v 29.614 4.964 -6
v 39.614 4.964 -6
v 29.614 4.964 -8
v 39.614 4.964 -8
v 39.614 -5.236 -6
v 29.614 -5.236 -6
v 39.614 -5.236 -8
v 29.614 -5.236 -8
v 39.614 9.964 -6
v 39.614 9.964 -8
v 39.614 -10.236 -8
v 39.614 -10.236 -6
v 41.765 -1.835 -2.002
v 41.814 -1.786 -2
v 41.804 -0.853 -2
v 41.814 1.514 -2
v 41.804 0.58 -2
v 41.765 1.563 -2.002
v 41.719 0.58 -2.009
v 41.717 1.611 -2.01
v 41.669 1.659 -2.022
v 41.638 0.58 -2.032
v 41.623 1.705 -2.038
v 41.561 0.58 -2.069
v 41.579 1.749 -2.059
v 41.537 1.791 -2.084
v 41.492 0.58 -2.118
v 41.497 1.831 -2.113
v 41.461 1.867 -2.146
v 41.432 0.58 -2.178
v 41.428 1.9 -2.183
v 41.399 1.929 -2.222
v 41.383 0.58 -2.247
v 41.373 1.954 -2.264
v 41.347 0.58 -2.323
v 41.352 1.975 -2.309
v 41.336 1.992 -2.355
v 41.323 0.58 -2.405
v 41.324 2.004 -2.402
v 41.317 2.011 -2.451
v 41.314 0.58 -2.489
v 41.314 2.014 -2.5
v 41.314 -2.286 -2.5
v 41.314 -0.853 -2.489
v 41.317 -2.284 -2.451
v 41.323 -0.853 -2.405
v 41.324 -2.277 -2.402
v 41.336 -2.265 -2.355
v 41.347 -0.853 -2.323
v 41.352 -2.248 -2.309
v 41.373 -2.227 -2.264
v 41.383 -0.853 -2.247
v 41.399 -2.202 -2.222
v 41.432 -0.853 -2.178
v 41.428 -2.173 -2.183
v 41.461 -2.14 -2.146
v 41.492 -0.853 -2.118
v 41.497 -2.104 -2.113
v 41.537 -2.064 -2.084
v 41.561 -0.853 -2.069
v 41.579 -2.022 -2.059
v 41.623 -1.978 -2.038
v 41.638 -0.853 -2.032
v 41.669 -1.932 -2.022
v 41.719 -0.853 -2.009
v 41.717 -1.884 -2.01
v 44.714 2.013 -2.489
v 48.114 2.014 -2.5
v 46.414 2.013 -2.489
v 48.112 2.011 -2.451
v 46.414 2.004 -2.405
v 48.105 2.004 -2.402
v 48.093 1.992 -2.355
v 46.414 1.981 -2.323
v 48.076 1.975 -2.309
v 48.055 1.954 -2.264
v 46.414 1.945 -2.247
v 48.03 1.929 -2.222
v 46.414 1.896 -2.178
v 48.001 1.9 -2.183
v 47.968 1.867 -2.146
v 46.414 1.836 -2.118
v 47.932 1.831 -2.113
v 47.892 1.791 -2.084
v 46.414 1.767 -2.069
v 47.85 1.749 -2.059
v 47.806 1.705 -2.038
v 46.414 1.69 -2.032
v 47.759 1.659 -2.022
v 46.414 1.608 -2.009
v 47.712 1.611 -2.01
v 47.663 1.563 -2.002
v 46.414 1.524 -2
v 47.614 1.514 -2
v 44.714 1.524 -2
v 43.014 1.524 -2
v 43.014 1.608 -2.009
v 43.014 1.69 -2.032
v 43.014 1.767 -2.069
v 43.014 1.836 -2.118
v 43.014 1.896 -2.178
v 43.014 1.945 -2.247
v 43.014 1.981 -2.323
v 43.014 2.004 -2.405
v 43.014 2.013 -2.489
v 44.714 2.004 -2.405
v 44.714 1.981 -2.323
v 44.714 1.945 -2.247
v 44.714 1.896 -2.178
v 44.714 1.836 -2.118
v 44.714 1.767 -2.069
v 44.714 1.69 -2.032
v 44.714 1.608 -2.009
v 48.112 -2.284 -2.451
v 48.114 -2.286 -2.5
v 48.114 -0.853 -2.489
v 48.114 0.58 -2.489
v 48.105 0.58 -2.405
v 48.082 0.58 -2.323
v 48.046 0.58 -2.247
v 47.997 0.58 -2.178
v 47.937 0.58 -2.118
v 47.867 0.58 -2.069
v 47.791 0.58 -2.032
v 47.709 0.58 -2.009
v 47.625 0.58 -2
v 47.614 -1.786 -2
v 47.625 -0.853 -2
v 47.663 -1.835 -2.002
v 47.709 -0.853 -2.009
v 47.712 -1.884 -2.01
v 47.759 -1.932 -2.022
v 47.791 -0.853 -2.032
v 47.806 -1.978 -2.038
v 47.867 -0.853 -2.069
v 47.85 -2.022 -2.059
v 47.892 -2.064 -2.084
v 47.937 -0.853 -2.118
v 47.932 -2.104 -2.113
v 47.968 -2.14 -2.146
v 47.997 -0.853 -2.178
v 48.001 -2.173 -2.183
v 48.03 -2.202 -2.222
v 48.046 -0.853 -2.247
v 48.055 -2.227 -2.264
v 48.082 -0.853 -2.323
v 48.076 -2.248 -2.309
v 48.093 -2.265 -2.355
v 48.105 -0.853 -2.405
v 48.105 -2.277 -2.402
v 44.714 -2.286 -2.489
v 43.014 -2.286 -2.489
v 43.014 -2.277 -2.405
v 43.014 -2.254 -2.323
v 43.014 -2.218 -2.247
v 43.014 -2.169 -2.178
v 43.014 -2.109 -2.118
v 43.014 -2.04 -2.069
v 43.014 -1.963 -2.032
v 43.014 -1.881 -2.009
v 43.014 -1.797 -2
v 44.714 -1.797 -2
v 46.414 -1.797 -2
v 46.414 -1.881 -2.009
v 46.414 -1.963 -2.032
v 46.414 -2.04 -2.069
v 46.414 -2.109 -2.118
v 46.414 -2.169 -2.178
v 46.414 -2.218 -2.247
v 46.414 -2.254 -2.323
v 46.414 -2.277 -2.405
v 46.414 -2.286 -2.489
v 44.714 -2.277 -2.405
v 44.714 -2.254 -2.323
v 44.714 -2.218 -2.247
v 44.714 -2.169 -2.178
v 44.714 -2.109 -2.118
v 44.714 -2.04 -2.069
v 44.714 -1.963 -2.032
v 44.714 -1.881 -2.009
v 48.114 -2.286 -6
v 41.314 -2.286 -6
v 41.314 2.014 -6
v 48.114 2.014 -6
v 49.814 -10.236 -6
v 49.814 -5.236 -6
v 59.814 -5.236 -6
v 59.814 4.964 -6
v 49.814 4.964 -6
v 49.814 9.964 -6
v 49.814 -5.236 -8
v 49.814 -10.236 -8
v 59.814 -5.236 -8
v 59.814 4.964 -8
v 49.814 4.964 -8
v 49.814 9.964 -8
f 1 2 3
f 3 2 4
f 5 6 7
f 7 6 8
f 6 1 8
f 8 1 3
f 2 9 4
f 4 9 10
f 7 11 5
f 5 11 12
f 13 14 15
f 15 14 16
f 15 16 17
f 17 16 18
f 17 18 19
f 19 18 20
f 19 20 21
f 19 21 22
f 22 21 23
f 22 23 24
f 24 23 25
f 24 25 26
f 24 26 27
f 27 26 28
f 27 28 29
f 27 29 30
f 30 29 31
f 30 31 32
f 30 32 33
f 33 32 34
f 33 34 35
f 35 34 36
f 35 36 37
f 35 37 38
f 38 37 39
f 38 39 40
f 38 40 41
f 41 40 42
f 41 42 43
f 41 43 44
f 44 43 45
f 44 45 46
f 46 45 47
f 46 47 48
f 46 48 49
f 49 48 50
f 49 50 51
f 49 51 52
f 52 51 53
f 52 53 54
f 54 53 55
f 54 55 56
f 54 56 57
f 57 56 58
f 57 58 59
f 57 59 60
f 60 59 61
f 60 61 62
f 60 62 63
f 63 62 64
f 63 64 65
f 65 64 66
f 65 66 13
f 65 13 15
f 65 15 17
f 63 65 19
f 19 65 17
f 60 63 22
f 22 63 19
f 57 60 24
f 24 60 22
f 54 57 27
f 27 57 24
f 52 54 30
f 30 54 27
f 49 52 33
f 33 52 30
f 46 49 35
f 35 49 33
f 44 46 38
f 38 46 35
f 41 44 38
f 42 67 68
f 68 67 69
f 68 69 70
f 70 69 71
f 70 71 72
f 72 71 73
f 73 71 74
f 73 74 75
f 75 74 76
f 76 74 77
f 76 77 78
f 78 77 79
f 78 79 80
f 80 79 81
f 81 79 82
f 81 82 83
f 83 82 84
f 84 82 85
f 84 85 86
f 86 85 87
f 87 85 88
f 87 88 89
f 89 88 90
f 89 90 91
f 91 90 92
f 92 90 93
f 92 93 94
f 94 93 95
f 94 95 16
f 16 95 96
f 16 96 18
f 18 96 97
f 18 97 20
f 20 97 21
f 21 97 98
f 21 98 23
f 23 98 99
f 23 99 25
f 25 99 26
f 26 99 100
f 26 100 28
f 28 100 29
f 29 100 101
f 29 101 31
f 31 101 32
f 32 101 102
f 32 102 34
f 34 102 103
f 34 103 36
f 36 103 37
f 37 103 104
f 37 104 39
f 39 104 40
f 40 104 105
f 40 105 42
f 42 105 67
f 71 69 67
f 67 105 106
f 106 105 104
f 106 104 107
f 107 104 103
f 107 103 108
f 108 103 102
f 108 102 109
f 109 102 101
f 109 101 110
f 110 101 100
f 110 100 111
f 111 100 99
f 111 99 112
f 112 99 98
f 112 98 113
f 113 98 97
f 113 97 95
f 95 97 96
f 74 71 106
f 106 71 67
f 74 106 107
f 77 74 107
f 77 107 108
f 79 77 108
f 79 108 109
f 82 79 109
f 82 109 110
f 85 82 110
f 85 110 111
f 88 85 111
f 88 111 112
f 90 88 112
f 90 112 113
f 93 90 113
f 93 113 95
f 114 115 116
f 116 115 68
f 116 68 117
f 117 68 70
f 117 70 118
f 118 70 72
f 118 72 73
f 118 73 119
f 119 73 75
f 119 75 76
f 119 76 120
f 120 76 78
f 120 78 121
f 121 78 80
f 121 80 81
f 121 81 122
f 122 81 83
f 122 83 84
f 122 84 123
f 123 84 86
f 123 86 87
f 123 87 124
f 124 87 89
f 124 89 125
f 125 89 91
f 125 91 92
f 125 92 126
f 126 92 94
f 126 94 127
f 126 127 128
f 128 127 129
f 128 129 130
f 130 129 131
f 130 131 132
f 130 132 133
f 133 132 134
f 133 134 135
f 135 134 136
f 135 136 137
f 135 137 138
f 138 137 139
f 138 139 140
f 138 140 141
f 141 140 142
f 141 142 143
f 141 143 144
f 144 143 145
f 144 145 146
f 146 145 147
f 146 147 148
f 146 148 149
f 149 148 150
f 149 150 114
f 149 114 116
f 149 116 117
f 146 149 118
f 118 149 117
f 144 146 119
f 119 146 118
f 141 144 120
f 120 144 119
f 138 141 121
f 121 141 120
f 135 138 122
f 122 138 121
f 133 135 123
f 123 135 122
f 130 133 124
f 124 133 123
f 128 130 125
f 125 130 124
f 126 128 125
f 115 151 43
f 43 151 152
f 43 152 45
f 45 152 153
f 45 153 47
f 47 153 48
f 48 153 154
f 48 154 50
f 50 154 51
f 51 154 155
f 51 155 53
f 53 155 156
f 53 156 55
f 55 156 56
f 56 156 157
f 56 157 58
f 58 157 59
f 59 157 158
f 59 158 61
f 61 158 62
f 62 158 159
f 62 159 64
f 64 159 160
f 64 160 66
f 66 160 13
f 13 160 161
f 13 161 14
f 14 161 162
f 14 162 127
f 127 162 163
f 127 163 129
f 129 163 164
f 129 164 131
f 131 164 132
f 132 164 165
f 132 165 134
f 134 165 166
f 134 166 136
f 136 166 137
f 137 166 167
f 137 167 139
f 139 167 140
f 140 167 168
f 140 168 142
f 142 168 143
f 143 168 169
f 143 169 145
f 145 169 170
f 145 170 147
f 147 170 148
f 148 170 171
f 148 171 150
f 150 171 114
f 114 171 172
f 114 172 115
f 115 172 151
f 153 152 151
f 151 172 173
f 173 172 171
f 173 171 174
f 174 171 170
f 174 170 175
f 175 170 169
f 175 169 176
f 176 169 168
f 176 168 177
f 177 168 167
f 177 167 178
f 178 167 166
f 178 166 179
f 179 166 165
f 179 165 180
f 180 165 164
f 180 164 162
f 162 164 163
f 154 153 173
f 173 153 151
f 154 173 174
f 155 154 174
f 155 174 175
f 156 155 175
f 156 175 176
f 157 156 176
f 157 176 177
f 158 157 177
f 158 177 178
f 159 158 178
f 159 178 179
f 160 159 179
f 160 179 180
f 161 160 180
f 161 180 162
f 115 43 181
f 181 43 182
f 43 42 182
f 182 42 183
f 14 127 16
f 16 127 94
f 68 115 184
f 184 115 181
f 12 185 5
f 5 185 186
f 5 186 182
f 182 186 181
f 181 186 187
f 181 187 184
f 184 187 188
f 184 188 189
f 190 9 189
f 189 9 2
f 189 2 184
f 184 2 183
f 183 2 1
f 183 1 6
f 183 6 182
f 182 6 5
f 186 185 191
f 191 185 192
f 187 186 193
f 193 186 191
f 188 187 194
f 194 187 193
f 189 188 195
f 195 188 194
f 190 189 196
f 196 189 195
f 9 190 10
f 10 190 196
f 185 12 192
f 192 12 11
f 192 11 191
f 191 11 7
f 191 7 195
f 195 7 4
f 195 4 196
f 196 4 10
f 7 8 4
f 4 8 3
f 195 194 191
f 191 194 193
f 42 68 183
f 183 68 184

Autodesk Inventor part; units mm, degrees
ref_plane "YZ Plane" through (0, 0, 0) normal (1, 0, 0) x (0, 1, 0)
ref_plane "XZ Plane" through (0, 0, 0) normal (0, 1, 0) x (-1, 0, 0)
ref_plane "XY Plane" through (0, 0, 0) normal (0, 0, 1) x (1, 0, 0)
sketch "Skizze2" plane through (0, 0, 0) normal (0, 0, 1) x (1, 0, 0)
  line L0 (47.429, 1.628) -> (41.9536, 1.5965) projected
  line L1 (47.4645, -1.7719) -> (41.9641, -1.8346) projected
  line L2 (41.9168, 1.5642) -> (41.9437, -0.1365) projected
  line L3 (47.466, 0.6928) -> (47.4706, 0.1306) projected
  line L4 (48.1143, -2.2865) -> (41.3143, -2.2865)
  line L5 (41.3143, -2.2865) -> (41.3143, 2.0135)
  line L6 (41.3143, 2.0135) -> (48.1143, 2.0135)
  line L7 (48.1143, 2.0135) -> (48.1143, -2.2865)
  line L8 (48.1143, -2.2865) -> (41.3143, 2.0135) construction
  line L9 (41.3143, -2.2865) -> (48.1143, 2.0135) construction
  point P0 (0, 0)
  point P1 (44.7143, -0.1365)
  dimension "d0" = 6.8
  dimension "d1" = 4.3
extrude "Extrusion1" add sketch "Skizze2" against normal blind 6
sketch "Skizze4" plane through (0, 0, -6) normal (0, 0, -1) x (-1, 0, 0)
  line L0 (-48.1143, -2.2865) -> (-41.3143, -2.2865) construction
  line L1 (-41.3143, 2.0135) -> (-48.1143, 2.0135) construction
  line L2 (-41.3143, -2.2865) -> (-41.3143, 2.0135) construction
  line L3 (-48.1143, 2.0135) -> (-48.1143, -2.2865) construction
  line L4 (-49.8143, -10.2365) -> (-39.6143, -10.2365)
  line L5 (-39.6143, -10.2365) -> (-39.6143, 9.9635)
  line L6 (-39.6143, 9.9635) -> (-49.8143, 9.9635)
  line L7 (-49.8143, -10.2365) -> (-39.6143, 9.9635) construction
  line L8 (-39.6143, -10.2365) -> (-49.8143, 9.9635) construction
  line L9 (-59.8143, -5.2365) -> (-59.8143, 4.9635)
  line L10 (-29.6143, -5.2365) -> (-59.8143, 4.9635) construction
  line L11 (-59.8143, -5.2365) -> (-29.6143, 4.9635) construction
  line L12 (-41.3143, -5.2365) -> (-42.1391, -5.2365)
  line L13 (-49.8143, -5.2365) -> (-59.8143, -5.2365)
  line L14 (-59.8143, 4.9635) -> (-49.8143, 4.9635)
  line L15 (-42.1391, 4.9635) -> (-41.3143, 4.9635)
  line L16 (-49.8143, 9.9635) -> (-49.8143, 4.9635)
  line L17 (-49.8143, -5.2365) -> (-49.8143, -10.2365)
  point P0 (0, 0)
  point P1 (-44.7143, -0.1365)
  point P2 (-44.7143, -0.1365)
extrude "Extrusion2" add sketch "Skizze4" along normal blind 2
fillet "Rundung1" radius 1 4 edges at (44.7143, 2.0135, 0) (41.3143, -0.1365, 0) (48.1143, -0.1365, 0) (44.7143, -2.2865, 0)
sketch "Skizze5" plane through (0, 0, 0) normal (0, 0, 1) x (1, 0, 0)
  line L0 (49.8143, -10.2365) -> (39.6143, -10.2365) projected
  line L1 (49.8143, -5.2365) -> (49.8143, -10.2365) projected
  line L2 (59.8143, -5.2365) -> (49.8143, -5.2365) projected
  line L3 (59.8143, 4.9635) -> (59.8143, -5.2365) projected
  line L4 (49.8143, 4.9635) -> (59.8143, 4.9635) projected
  line L5 (49.8143, 9.9635) -> (49.8143, 4.9635) projected
  line L6 (39.6143, 9.9635) -> (49.8143, 9.9635) projected
  line L7 (39.6143, -10.2365) -> (39.6143, 9.9635) projected
  line L8 (48.1143, 2.0135) -> (48.1143, -2.2865) projected
  line L9 (48.1143, -2.2865) -> (41.3143, -2.2865) projected
  line L10 (41.3143, -2.2865) -> (41.3143, 2.0135) projected
  line L11 (41.3143, 2.0135) -> (48.1143, 2.0135) projected
  point P0 (0, 0)
extrude "Extrusion3" cut sketch "Skizze5" against normal blind 2 contours L8 L9 L10 L11
fillet "Rundung2" radius 0.5 4 edges at (44.7143, 2.0135, -2) (41.3143, -0.1365, -2) (44.7143, -2.2865, -2) (48.1143, -0.1365, -2)
sketch "Skizze6" plane through (0, 0, -8) normal (0, 0, -1) x (-1, 0, 0)
  line L0 (-49.8143, -10.2365) -> (-39.6143, -10.2365) projected
  line L1 (-39.6143, -10.2365) -> (-39.6143, 9.9635) projected
  line L2 (-39.6143, 9.9635) -> (-49.8143, 9.9635) projected
  line L3 (-49.8143, 9.9635) -> (-49.8143, 4.9635) projected
  line L4 (-49.8143, 4.9635) -> (-59.8143, 4.9635) projected
  line L5 (-59.8143, 4.9635) -> (-59.8143, -5.2365) projected
  line L6 (-59.8143, -5.2365) -> (-49.8143, -5.2365) projected
  line L7 (-49.8143, -5.2365) -> (-49.8143, -10.2365) projected
  line L8 (-39.6143, -10.2365) -> (-39.6143, 9.9635) projected
  line L9 (-39.6143, 4.9635) -> (-29.6143, 4.9635)
  line L10 (-29.6143, 4.9635) -> (-29.6143, -5.2365)
  line L11 (-29.6143, -5.2365) -> (-39.6143, -5.2365)
  line L12 (-39.6143, -5.2365) -> (-39.6143, 4.9635)
  point P0 (0, 0)
  dimension "d14" = 10
extrude "Extrusion4" add sketch "Skizze6" against normal up to surface (2 mm away) contours L1 L9 L10 L11
properties part number "palm_plate" material "Nylon 6/6"
